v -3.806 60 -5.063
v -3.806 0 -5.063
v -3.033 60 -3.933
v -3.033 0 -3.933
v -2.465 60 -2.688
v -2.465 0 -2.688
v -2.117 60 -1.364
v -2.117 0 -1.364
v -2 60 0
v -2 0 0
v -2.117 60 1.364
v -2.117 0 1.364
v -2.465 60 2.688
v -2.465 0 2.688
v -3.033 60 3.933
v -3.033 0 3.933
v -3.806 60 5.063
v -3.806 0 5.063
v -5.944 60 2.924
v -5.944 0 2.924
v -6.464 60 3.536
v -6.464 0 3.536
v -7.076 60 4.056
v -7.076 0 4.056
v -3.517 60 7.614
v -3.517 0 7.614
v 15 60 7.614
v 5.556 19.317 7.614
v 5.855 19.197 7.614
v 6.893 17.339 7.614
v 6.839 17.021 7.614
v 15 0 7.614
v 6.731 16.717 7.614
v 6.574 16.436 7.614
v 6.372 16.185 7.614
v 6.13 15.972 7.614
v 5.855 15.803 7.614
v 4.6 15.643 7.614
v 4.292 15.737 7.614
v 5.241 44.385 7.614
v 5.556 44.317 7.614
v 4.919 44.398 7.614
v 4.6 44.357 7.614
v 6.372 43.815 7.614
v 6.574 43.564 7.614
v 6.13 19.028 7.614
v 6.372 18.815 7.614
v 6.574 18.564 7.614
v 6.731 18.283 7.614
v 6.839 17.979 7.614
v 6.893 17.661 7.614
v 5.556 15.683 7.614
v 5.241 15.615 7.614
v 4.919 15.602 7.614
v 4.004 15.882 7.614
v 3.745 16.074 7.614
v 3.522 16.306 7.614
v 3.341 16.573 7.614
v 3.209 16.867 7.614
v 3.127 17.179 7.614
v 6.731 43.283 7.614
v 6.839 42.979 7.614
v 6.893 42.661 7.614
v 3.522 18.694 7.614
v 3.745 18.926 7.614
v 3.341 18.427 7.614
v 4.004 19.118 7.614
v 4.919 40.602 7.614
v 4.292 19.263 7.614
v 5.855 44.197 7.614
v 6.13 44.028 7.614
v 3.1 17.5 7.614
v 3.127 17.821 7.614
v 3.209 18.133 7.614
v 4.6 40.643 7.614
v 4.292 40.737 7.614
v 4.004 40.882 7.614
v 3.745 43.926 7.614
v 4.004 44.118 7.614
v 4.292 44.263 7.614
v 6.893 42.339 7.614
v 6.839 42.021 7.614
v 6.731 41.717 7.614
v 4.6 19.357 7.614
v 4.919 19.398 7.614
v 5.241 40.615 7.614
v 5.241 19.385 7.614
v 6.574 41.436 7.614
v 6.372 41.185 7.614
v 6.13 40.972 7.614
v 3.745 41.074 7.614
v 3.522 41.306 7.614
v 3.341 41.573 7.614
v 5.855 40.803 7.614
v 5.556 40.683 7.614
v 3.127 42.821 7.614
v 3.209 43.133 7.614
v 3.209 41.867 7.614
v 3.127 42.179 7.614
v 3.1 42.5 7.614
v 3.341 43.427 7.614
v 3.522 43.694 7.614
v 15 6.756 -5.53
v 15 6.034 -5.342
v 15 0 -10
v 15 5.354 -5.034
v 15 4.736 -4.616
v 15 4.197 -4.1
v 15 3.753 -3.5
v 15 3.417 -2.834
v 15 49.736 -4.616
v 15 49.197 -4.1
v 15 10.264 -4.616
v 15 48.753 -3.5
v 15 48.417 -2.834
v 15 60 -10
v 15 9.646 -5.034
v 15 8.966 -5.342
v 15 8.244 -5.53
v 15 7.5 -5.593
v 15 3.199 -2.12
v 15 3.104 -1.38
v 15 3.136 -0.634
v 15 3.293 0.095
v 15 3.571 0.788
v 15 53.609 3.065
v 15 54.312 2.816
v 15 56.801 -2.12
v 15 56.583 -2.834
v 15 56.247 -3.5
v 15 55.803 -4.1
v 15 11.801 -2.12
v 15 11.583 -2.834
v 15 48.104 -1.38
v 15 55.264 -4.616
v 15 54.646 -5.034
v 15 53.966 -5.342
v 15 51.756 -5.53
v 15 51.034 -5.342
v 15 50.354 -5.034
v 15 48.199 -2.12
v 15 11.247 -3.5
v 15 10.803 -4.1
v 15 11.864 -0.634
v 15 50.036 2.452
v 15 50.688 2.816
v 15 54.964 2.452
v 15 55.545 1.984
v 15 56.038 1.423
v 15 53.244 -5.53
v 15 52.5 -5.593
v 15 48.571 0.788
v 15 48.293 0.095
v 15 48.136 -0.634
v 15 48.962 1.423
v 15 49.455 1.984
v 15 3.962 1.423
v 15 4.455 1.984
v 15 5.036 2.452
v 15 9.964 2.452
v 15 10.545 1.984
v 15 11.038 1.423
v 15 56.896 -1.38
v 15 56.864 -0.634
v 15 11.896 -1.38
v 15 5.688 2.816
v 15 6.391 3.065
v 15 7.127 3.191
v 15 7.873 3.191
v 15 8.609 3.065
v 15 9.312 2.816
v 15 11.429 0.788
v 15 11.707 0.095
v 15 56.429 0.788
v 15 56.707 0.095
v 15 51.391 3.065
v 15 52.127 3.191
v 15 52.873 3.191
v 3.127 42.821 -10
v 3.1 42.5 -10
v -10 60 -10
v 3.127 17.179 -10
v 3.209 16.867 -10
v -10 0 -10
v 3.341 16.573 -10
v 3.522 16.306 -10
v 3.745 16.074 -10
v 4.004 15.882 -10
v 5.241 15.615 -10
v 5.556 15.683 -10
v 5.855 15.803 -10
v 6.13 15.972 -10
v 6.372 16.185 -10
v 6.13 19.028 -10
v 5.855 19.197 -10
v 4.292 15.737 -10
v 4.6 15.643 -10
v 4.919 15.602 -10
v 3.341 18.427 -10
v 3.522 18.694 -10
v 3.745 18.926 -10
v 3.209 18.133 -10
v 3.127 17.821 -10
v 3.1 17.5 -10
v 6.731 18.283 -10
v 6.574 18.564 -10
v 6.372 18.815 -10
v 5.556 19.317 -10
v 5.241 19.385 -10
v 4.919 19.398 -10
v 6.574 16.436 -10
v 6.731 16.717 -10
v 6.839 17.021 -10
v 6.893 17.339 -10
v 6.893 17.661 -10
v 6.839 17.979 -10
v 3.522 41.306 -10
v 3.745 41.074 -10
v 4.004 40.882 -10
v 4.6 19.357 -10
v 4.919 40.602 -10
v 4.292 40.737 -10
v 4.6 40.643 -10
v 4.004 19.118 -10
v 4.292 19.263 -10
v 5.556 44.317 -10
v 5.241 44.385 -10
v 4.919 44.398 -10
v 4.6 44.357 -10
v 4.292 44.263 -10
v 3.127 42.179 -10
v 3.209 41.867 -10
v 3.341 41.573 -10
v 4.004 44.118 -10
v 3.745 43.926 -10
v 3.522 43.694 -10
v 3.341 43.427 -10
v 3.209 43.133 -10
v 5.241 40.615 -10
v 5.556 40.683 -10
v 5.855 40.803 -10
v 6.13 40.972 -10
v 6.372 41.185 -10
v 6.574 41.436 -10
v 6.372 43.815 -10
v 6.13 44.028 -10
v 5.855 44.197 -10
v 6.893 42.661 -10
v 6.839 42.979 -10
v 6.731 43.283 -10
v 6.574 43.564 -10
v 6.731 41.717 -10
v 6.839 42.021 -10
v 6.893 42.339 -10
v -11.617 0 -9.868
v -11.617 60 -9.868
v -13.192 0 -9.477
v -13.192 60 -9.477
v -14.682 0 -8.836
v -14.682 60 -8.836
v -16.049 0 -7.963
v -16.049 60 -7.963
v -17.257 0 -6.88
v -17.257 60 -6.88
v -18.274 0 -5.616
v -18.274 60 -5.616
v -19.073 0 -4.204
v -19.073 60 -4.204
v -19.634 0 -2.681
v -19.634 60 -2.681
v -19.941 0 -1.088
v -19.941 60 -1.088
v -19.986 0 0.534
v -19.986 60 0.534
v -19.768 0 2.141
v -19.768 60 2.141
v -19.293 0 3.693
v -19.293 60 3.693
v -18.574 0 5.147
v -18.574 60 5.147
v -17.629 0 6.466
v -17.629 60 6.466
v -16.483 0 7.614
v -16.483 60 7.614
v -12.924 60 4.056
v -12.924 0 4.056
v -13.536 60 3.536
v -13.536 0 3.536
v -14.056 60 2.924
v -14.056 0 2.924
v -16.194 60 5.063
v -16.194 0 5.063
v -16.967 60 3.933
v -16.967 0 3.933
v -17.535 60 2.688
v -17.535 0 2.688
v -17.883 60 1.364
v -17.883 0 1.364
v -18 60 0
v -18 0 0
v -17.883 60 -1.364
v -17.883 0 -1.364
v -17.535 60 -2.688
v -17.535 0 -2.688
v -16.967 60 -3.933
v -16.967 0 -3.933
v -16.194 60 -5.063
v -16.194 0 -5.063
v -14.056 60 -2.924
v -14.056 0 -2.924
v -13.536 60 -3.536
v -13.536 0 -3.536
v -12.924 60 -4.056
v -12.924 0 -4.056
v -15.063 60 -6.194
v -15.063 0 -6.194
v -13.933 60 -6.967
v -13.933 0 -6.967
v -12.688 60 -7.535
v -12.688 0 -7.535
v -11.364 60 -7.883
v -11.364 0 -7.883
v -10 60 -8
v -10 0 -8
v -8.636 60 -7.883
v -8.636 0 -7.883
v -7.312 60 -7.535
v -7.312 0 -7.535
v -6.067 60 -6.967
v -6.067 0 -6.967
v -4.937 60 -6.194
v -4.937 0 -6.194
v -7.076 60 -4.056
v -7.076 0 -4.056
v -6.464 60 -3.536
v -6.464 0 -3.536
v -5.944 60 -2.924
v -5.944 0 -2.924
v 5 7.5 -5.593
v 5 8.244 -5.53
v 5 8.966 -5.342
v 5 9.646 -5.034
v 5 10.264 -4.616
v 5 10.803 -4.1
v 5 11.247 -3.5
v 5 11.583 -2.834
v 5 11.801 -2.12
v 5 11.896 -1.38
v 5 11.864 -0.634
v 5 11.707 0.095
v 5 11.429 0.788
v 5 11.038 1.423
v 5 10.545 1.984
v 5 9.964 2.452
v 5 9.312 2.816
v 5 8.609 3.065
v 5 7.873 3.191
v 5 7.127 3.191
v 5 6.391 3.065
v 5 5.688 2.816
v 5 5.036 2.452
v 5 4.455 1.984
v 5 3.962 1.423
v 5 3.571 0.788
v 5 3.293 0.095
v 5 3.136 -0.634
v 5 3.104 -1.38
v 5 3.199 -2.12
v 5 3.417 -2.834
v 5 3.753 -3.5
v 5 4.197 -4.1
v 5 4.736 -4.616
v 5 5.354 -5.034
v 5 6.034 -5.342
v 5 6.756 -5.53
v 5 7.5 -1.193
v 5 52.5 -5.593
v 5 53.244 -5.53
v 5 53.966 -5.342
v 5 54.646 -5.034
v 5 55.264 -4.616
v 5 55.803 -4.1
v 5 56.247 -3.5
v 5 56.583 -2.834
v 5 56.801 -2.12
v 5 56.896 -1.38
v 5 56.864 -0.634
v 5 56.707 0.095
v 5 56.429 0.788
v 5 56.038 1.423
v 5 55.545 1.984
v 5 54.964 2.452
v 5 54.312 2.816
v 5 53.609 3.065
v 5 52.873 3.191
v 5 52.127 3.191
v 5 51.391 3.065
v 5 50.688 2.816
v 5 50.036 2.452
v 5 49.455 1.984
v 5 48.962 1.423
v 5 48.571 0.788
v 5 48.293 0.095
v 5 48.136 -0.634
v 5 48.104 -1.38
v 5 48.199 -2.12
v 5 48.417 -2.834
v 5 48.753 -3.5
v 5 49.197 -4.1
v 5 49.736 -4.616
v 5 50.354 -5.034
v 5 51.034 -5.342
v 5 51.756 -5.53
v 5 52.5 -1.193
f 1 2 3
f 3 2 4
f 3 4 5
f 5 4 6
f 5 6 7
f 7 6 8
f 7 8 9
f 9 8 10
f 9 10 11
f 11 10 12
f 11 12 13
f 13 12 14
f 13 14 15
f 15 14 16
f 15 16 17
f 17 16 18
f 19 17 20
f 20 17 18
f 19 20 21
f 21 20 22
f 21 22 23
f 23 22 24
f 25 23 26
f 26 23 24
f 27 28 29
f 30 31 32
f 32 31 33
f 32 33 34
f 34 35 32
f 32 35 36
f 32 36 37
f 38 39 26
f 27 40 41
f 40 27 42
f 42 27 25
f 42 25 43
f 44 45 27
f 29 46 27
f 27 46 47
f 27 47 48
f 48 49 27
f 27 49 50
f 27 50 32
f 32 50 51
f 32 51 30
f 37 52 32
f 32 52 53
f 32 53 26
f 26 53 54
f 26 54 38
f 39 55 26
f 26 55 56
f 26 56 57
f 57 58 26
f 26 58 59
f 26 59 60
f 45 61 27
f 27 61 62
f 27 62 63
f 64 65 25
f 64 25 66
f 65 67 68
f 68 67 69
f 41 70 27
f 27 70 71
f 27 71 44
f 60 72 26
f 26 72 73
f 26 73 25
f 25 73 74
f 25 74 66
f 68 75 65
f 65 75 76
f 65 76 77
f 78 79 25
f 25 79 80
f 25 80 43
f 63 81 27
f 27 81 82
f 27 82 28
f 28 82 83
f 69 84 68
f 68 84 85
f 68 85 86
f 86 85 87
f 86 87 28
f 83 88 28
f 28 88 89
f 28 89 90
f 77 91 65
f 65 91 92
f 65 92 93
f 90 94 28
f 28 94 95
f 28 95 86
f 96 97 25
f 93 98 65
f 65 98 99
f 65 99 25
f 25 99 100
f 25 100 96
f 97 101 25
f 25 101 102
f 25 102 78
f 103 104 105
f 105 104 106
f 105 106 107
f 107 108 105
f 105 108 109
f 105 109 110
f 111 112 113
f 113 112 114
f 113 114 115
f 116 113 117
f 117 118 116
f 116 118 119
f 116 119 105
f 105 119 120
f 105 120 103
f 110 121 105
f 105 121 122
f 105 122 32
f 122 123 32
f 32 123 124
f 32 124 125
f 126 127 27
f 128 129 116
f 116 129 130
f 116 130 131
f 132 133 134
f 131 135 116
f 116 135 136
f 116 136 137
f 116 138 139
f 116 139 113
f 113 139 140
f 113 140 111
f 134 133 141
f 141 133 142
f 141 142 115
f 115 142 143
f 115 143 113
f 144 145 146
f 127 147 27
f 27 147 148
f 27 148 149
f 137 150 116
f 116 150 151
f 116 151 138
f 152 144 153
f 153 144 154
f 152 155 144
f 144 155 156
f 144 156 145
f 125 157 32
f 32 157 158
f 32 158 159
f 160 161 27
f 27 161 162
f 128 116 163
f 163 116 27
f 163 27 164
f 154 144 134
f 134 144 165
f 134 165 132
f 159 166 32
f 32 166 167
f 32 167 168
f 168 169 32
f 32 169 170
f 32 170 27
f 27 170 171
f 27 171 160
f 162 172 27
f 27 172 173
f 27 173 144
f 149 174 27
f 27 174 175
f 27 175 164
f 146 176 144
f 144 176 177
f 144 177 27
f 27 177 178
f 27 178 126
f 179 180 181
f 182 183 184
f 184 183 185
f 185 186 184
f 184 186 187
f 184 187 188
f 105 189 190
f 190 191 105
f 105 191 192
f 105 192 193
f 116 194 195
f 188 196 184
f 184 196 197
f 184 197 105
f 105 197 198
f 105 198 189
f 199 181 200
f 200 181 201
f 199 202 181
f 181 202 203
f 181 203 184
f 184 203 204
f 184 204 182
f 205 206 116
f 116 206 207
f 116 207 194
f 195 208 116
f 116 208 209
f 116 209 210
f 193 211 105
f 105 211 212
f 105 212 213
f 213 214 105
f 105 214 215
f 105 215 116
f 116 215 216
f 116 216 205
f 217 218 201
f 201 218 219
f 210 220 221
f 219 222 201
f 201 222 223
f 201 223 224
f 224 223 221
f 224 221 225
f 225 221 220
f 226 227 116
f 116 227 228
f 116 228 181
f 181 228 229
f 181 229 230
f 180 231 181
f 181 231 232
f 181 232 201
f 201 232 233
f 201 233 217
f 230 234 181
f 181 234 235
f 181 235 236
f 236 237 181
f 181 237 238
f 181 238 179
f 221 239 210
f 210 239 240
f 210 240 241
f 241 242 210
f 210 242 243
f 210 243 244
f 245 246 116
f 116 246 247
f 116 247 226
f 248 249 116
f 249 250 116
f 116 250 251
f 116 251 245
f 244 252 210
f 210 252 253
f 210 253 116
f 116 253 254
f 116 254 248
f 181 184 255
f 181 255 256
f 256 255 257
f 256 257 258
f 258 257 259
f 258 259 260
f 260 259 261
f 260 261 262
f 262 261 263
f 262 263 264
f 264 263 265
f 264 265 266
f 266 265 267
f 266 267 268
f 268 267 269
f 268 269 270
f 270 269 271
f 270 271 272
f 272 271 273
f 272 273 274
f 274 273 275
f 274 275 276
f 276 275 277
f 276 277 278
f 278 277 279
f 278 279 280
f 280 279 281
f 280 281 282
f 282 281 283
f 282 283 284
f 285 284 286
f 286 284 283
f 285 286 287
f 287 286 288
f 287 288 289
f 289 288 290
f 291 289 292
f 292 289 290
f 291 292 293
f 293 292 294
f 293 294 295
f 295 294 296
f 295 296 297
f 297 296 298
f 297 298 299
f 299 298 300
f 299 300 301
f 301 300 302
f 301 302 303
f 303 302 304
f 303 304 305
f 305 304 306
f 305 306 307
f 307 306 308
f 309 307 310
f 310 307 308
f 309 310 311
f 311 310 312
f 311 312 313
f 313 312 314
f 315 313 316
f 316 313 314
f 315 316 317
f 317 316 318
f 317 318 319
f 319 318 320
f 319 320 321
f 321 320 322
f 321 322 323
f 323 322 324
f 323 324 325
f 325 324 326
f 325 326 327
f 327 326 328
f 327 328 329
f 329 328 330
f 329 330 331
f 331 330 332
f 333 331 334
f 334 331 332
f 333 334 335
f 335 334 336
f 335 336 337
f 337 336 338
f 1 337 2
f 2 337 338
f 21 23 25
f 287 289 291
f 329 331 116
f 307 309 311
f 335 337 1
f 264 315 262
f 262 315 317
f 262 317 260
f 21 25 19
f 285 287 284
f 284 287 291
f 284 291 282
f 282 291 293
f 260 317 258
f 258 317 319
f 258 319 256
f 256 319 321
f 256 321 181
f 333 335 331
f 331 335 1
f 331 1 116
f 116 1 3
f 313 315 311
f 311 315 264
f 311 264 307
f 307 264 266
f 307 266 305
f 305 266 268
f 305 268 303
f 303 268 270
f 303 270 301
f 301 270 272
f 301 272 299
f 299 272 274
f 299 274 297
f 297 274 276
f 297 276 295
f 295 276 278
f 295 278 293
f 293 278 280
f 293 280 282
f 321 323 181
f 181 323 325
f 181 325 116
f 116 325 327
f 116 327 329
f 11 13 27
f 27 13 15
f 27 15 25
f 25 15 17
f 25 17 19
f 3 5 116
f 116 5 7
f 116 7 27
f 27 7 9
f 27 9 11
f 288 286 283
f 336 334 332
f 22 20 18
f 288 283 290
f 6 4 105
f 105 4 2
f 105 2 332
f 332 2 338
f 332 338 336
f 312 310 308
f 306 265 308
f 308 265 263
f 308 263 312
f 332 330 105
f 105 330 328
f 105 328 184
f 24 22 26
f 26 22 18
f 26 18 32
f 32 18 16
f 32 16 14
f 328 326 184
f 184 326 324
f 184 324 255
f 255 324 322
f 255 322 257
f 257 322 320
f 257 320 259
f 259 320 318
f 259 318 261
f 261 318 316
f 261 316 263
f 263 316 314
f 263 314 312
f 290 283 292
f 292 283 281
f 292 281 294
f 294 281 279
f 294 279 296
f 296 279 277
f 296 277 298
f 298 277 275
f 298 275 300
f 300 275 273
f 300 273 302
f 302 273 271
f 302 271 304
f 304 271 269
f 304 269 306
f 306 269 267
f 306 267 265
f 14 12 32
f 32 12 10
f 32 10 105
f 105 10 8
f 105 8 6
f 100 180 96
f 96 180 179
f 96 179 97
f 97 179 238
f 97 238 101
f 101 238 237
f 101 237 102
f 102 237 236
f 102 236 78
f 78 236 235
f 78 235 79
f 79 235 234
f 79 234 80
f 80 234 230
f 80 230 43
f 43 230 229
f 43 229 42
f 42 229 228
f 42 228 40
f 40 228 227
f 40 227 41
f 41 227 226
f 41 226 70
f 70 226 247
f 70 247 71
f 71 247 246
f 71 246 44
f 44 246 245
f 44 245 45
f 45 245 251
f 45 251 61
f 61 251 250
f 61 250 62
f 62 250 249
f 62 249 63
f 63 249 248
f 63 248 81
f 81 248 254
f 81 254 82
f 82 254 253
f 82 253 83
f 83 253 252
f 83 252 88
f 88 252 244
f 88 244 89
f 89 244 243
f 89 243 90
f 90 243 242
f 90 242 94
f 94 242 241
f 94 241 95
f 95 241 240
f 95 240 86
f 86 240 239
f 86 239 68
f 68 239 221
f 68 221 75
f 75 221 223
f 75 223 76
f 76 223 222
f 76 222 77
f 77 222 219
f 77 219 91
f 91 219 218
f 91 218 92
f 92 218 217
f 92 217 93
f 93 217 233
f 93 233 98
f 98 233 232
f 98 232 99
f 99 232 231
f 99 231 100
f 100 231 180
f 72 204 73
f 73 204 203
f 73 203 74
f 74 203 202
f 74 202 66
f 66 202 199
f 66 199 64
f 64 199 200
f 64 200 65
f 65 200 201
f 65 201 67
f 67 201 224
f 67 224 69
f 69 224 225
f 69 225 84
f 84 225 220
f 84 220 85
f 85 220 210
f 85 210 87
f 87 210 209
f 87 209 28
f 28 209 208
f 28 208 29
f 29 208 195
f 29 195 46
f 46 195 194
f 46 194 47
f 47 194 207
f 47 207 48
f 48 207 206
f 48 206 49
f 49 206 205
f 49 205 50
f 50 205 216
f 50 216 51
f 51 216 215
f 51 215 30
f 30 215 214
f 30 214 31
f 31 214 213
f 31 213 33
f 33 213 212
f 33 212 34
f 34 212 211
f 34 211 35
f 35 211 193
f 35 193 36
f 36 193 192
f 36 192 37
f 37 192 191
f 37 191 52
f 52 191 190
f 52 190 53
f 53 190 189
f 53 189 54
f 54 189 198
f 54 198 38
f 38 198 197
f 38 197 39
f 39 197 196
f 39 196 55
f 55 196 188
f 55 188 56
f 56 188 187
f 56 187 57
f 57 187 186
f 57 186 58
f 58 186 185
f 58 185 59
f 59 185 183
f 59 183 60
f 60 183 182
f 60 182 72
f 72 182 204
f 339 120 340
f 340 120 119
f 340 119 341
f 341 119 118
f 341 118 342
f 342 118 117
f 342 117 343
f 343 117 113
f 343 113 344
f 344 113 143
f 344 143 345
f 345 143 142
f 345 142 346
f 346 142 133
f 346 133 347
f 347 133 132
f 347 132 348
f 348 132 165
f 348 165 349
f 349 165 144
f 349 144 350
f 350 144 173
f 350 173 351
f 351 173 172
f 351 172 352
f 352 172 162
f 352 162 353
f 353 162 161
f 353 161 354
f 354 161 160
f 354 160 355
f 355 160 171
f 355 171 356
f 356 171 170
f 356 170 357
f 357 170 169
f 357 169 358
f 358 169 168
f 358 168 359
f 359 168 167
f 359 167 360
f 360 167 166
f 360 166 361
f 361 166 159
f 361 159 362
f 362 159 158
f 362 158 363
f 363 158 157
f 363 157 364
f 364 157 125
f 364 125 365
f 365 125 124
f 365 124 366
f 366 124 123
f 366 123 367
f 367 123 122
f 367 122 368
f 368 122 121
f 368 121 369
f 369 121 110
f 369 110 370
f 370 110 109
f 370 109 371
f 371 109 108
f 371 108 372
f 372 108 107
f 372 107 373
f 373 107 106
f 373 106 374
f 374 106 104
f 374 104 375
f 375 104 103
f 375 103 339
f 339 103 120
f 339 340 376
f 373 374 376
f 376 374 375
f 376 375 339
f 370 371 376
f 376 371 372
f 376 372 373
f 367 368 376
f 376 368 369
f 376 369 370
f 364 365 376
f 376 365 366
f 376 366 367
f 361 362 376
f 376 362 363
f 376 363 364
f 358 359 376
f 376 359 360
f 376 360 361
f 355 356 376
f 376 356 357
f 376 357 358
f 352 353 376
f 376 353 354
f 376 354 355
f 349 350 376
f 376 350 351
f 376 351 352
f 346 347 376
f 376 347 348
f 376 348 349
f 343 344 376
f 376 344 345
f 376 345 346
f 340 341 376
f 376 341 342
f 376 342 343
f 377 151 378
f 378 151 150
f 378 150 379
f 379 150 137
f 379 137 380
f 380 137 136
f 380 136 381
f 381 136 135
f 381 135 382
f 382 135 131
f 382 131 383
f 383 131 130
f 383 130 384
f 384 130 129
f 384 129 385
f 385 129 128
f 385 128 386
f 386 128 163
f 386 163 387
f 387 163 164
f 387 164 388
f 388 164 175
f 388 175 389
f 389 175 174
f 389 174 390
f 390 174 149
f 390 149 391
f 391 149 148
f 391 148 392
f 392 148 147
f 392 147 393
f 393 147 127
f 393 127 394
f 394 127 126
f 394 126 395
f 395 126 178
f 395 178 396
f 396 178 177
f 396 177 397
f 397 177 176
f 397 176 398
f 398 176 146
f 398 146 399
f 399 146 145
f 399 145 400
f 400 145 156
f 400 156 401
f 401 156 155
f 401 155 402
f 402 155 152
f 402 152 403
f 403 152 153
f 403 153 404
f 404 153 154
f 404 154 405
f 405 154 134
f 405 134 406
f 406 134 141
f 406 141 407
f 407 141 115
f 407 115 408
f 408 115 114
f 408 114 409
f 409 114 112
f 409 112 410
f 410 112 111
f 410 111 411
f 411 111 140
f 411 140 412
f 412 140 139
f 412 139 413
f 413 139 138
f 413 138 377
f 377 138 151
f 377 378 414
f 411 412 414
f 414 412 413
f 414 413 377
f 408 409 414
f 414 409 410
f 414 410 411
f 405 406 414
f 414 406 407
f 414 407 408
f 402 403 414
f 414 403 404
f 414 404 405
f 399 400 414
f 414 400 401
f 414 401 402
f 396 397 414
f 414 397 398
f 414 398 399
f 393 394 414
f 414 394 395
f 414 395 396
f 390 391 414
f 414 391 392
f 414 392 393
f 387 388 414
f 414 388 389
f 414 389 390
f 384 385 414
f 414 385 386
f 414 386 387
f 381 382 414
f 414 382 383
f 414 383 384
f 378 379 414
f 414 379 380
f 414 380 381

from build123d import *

# Parameters (mm, degrees)
BOSS_EXTRUDE1_DEPTH = 60
CUT_EXTRUDE2_REACH  = 19.614
SKETCH3_R           = 1.9
SKETCH4_R           = 4.4
CUT_EXTRUDE3_DEPTH  = 10


with BuildPart() as part:
    # Sketch1 → Boss-Extrude1 (new body)
    with BuildSketch(Plane(origin=(0, 0, 0), x_dir=(1, 0, 0), z_dir=(0, 1, 0))):
        with BuildLine():
            Line((0, 10), (-10, 10))
            ThreePointArc((-10, 10), (-19.384585633, 3.453918427), (-16.48271865, -7.6140895))
            Line((-16.48271865, -7.6140895), (-12.924300248, -4.055671098))
            ThreePointArc((-12.924300248, -4.055671098), (-13.535533906, -3.535533906), (-14.055671098, -2.924300248))
            Line((-14.055671098, -2.924300248), (-16.194184337, -5.062813487))
            ThreePointArc((-16.194184337, -5.062813487), (-18, 0), (-16.194184337, 5.062813487))
            Line((-16.194184337, 5.062813487), (-14.055671098, 2.924300248))
            ThreePointArc((-14.055671098, 2.924300248), (-13.535533906, 3.535533906), (-12.924300248, 4.055671098))
            Line((-12.924300248, 4.055671098), (-15.062813487, 6.194184337))
            ThreePointArc((-15.062813487, 6.194184337), (-10, 8), (-4.937186513, 6.194184337))
            Line((-4.937186513, 6.194184337), (-7.075699752, 4.055671098))
            ThreePointArc((-7.075699752, 4.055671098), (-6.464466094, 3.535533906), (-5.944328902, 2.924300248))
            Line((-5.944328902, 2.924300248), (-3.805815663, 5.062813487))
            ThreePointArc((-3.805815663, 5.062813487), (-2, 0), (-3.805815663, -5.062813487))
            Line((-3.805815663, -5.062813487), (-5.944328902, -2.924300248))
            ThreePointArc((-5.944328902, -2.924300248), (-6.464466094, -3.535533906), (-7.075699752, -4.055671098))
            Line((-7.075699752, -4.055671098), (-3.51728135, -7.6140895))
            Line((-3.51728135, -7.6140895), (15, -7.6140895))
            Line((15, -7.6140895), (15, 1.19295525))
            Line((15, 1.19295525), (15, 10))
            Line((15, 10), (0, 10))
        make_face()
    extrude(amount=BOSS_EXTRUDE1_DEPTH)

    # Sketch3 → Cut-Extrude2 (cut, up to next)
    with BuildSketch(Plane(origin=(0, 0, -10), x_dir=(-1, 0, 0), z_dir=(0, 0, -1)), mode=Mode.PRIVATE) as cut_extrude2_sk1:
        with Locations((-5, 42.5)):
            Circle(SKETCH3_R)
    cut_extrude2_tool1 = extrude(cut_extrude2_sk1.sketch, amount=-CUT_EXTRUDE2_REACH, mode=Mode.PRIVATE) & part.part
    add(cut_extrude2_tool1.solids().sort_by_distance((5, 42.5, -10))[0], mode=Mode.SUBTRACT)
    # Sketch3 → Cut-Extrude2 (cut, up to next)
    with BuildSketch(Plane(origin=(0, 0, -10), x_dir=(-1, 0, 0), z_dir=(0, 0, -1)), mode=Mode.PRIVATE) as cut_extrude2_sk2:
        with Locations((-5, 17.5)):
            Circle(SKETCH3_R)
    cut_extrude2_tool2 = extrude(cut_extrude2_sk2.sketch, amount=-CUT_EXTRUDE2_REACH, mode=Mode.PRIVATE) & part.part
    add(cut_extrude2_tool2.solids().sort_by_distance((5, 17.5, -10))[0], mode=Mode.SUBTRACT)

    # Sketch4 → Cut-Extrude3 (cut)
    with BuildSketch(Plane(origin=(15, 0, 0), x_dir=(0, 0, -1), z_dir=(1, 0, 0))):
        with Locations((1.19295525, 7.5)):
            Circle(SKETCH4_R)
        with Locations((1.19295525, 52.5)):
            Circle(SKETCH4_R)
    extrude(amount=-CUT_EXTRUDE3_DEPTH, mode=Mode.SUBTRACT)


solid = part.part
